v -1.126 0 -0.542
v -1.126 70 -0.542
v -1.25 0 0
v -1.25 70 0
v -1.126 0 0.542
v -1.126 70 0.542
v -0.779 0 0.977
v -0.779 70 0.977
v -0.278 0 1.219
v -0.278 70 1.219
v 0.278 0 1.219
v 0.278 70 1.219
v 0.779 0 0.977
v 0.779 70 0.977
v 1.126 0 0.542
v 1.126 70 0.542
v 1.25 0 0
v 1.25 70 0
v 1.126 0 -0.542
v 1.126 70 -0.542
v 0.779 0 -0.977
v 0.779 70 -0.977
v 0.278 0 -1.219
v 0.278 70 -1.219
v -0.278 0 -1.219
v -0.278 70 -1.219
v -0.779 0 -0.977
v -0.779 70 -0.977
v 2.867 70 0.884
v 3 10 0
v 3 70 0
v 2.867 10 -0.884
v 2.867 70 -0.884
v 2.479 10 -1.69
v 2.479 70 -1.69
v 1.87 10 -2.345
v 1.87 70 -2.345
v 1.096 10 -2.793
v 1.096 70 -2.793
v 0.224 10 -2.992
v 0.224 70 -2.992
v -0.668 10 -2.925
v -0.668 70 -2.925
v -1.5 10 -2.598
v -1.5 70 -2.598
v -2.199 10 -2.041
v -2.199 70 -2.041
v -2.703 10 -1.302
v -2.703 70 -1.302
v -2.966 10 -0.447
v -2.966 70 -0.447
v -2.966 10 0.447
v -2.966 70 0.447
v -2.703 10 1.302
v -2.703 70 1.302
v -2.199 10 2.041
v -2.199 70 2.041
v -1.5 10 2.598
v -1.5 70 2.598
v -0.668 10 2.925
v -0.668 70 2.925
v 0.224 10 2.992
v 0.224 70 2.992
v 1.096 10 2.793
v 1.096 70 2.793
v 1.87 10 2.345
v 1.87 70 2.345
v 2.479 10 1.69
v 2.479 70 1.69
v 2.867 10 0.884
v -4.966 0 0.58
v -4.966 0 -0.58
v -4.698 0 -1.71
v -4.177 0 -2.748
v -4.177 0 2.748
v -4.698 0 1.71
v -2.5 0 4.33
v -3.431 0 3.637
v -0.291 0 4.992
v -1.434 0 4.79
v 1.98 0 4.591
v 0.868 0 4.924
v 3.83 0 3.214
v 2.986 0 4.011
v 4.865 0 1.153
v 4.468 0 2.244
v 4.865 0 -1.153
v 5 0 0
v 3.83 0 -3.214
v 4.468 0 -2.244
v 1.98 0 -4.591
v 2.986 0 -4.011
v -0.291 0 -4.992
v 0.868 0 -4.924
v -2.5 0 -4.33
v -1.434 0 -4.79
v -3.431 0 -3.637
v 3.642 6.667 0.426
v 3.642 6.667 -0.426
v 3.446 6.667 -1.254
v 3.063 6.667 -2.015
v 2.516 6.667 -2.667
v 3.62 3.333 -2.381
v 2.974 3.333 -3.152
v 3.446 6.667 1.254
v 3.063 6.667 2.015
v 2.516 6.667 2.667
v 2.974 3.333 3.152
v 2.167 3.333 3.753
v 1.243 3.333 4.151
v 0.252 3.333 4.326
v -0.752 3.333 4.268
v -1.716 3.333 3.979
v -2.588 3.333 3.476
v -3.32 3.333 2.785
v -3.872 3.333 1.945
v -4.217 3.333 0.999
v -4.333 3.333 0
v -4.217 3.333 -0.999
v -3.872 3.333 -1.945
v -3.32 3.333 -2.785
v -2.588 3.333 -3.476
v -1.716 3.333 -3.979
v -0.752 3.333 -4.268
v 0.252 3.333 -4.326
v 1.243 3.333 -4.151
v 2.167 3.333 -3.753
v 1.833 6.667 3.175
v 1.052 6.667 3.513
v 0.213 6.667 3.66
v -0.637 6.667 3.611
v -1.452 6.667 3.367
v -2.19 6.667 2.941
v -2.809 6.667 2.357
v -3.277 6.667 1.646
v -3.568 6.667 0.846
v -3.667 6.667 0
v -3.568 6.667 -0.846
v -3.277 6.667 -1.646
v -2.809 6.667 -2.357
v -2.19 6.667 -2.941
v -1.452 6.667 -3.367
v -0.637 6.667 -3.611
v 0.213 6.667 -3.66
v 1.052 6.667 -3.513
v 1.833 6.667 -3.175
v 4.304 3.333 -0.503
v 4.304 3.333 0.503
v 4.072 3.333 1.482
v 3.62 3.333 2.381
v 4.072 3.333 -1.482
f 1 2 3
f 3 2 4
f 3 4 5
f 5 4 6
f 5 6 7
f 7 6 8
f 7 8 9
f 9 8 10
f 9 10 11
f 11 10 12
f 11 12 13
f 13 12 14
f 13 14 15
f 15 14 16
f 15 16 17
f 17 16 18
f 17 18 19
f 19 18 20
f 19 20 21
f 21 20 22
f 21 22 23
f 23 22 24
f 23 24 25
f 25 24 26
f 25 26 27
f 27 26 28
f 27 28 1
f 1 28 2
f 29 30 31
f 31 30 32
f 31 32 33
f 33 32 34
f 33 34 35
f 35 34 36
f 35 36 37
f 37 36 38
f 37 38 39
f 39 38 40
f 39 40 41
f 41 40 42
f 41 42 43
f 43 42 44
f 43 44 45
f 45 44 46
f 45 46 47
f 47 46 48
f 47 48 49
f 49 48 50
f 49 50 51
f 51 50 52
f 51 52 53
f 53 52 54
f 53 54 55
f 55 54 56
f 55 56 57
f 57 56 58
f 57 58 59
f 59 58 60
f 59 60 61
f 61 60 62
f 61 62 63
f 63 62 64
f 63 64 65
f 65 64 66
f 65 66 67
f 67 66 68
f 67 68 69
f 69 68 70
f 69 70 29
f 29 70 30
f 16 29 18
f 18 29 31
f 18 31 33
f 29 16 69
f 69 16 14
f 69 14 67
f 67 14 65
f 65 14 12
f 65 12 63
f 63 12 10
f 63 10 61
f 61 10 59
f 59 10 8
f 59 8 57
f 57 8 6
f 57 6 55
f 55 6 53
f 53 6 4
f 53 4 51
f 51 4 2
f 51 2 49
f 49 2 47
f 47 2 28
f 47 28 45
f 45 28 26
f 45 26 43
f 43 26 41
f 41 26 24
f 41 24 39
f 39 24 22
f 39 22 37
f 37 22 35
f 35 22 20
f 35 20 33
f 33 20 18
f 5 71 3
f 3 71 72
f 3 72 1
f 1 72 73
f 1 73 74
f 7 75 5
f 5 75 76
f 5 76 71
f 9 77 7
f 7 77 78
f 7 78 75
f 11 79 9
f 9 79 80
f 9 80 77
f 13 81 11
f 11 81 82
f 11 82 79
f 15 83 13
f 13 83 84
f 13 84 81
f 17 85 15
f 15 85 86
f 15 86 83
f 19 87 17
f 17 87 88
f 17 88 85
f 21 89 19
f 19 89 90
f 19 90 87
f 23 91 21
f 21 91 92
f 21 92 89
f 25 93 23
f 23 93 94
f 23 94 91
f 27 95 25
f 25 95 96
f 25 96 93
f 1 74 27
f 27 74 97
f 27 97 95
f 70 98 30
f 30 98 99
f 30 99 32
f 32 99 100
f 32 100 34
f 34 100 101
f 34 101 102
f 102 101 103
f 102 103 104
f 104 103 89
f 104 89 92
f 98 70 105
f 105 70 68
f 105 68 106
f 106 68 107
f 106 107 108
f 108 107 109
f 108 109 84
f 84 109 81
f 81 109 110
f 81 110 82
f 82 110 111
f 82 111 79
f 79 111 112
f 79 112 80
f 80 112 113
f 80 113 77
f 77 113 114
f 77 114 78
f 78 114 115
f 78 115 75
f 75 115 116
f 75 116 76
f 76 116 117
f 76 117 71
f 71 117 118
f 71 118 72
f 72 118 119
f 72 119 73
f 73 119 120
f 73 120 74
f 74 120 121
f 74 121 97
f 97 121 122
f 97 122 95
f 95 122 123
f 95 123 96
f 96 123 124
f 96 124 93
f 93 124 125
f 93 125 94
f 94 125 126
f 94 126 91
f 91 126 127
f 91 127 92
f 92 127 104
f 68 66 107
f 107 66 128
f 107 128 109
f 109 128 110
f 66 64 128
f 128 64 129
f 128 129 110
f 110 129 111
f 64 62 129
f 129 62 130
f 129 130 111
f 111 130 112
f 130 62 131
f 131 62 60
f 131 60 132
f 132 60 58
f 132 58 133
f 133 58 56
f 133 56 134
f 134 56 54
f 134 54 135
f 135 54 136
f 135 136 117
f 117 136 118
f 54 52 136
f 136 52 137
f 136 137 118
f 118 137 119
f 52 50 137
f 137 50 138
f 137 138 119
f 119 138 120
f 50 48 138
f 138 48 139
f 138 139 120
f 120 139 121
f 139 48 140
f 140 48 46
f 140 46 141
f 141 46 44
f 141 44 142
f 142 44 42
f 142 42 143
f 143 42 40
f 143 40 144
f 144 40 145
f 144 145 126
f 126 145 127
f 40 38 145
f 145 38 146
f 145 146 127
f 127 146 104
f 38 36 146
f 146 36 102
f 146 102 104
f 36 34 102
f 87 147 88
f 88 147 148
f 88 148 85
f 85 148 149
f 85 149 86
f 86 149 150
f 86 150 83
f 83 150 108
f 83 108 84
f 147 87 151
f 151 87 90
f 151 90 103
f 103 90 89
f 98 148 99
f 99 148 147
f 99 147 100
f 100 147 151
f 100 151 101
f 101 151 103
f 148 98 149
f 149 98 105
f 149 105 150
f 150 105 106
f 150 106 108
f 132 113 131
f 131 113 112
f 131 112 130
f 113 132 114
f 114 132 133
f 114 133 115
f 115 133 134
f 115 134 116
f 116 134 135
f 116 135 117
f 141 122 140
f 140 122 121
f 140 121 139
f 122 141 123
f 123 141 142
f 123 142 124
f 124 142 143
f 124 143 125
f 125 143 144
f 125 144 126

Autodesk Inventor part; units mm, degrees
ref_plane "Work Plane1" through (0, 10, 0) normal (0, 1, 0) x (-1, 0, 0)
sketch "Sketch1" plane through (0, 0, 0) normal (0, 1, 0) x (-1, 0, 0)
  circle A0 centre (0, 0) radius 5
sketch "Sketch2" plane through (0, 10, 0) normal (0, 1, 0) x (-1, 0, 0)
  circle A0 centre (0, 0) radius 3
loft "Loft1" add profiles "Sketch2", "Sketch1"
sketch "Sketch3" plane through (0, 10, 0) normal (0, 1, 0) x (1, 0, 0)
  circle A0 centre (0, 0) radius 3
extrude "Extrusion1" add sketch "Sketch3" along normal blind 60
sketch "Sketch4" plane through (0, 70, 0) normal (0, 1, 0) x (1, 0, 0)
  circle A0 centre (0, 0) radius 1.25
extrude "Extrusion2" cut sketch "Sketch4" against normal blind 80
properties part number "Towers"
